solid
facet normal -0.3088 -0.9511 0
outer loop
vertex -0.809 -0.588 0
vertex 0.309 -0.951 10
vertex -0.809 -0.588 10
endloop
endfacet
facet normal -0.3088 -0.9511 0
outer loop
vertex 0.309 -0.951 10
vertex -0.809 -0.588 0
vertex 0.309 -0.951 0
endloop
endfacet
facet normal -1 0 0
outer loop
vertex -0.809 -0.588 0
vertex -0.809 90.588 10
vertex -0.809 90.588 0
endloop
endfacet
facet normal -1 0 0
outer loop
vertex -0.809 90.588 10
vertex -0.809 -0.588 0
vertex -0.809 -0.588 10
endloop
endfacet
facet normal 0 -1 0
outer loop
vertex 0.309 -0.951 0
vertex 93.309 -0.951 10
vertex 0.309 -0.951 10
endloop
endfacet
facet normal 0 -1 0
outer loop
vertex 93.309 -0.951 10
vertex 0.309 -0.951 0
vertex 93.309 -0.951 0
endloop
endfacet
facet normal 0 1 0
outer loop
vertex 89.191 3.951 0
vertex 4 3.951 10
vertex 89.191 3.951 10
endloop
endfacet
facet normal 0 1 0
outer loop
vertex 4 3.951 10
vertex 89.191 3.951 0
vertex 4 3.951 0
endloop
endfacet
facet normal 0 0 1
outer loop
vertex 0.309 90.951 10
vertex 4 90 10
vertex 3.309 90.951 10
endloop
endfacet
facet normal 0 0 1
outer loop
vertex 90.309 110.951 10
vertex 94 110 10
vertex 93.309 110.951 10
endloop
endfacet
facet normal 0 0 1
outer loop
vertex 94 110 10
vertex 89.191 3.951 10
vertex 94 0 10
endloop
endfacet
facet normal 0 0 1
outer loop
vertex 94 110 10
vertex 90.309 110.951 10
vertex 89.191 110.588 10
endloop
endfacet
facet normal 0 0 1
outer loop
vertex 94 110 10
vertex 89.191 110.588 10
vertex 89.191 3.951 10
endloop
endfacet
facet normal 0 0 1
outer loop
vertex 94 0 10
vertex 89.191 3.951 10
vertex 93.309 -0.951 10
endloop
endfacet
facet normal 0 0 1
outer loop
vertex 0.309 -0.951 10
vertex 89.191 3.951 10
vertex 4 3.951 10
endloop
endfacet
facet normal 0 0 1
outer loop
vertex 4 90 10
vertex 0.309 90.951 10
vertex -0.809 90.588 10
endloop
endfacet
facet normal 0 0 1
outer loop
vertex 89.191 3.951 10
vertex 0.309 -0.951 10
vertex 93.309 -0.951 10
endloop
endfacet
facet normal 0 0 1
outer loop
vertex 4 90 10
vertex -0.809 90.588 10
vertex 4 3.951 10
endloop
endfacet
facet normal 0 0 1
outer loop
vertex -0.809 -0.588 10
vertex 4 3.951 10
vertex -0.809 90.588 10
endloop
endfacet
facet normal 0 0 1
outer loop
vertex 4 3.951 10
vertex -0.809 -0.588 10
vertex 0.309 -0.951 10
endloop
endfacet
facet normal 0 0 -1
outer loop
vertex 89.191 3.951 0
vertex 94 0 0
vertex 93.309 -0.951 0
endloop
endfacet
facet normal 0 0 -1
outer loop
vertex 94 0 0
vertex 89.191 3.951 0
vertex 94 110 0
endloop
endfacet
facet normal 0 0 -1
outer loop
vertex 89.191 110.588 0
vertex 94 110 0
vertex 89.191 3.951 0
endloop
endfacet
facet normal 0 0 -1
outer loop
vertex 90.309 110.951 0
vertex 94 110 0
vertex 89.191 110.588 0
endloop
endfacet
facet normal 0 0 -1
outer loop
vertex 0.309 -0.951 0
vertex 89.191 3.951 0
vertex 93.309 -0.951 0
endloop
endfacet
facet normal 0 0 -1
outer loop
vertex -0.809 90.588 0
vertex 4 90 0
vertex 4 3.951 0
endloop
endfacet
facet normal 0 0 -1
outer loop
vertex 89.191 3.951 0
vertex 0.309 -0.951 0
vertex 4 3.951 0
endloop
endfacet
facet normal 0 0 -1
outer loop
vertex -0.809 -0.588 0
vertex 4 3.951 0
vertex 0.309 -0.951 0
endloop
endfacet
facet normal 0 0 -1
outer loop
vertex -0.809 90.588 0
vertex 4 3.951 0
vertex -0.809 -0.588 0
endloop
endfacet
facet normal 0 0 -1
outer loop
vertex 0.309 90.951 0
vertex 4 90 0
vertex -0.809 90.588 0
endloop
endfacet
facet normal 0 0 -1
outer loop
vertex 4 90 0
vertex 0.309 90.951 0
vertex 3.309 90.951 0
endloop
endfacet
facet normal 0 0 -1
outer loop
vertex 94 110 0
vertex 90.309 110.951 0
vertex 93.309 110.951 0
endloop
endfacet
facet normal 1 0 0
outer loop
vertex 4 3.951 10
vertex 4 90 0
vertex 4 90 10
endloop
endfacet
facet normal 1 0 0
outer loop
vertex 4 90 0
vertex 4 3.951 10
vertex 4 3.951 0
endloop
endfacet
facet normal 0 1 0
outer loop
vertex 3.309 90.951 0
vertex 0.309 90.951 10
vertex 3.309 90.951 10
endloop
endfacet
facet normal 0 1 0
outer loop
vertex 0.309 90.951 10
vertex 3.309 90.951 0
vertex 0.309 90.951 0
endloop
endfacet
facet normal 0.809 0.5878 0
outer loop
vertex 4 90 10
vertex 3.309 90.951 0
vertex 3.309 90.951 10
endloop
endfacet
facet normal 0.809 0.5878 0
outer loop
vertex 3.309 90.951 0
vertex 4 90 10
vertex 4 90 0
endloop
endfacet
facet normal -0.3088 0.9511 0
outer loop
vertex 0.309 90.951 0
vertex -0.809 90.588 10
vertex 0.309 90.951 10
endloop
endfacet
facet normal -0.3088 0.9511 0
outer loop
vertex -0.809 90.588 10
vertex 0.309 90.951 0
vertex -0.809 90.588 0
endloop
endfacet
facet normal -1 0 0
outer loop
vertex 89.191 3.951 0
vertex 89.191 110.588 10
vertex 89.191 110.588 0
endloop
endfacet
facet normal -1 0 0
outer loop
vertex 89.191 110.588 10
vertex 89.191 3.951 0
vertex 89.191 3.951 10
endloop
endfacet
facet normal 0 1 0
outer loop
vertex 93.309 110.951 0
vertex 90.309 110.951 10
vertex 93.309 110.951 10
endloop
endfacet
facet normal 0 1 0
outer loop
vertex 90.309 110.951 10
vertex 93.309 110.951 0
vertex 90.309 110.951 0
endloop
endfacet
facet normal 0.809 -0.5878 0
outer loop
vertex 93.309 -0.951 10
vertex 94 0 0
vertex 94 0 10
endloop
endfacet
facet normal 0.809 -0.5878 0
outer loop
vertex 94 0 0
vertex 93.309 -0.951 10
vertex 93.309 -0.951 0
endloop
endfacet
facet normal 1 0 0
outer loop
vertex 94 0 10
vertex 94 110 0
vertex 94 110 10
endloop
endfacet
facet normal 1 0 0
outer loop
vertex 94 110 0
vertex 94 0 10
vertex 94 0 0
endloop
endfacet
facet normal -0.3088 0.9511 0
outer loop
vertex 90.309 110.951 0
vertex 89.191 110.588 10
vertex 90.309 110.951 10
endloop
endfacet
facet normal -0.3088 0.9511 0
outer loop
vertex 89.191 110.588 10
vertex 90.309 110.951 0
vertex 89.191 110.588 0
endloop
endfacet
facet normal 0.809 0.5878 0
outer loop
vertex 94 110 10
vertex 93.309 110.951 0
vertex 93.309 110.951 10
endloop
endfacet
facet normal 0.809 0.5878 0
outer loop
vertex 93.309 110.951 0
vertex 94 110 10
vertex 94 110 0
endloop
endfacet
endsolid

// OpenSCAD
////Back dimentions
back_height = 10;
back_width = 90;
back_length = 3;
back_dimentions = [
[0, 0, 0],
[back_width, 0, 0],
[0, back_length, 0],
[back_width, back_length, 0]
];

//Left arm
left_height = 10;
left_width = 3;
left_length = 90;
left_dimentions = [
[0, 0, 0],
[left_width, 0, 0],
[0, left_length, 0],
[left_width, left_length, 0]
];

//Right arm
right_height = 10;
right_width = 3;
right_length = 110;
right_arm_x_offset = 90;
right_arm_y_offset = 0;
right_dimentions = [
[right_arm_x_offset, right_arm_y_offset, 0],
[right_width + right_arm_x_offset, right_arm_y_offset, 0],
[right_arm_x_offset, right_length + right_arm_y_offset, 0],
[right_width + right_arm_x_offset, right_length + right_arm_y_offset, 0]
];

for(dimentions = [back_dimentions, left_dimentions, right_dimentions]){
	hull(){
		for(dimention = dimentions){
			translate(dimention){
				cylinder(back_height);
			}
		}
	}
}

translate([10, 3, 0]){
//	import("inkpad.stl");
}
